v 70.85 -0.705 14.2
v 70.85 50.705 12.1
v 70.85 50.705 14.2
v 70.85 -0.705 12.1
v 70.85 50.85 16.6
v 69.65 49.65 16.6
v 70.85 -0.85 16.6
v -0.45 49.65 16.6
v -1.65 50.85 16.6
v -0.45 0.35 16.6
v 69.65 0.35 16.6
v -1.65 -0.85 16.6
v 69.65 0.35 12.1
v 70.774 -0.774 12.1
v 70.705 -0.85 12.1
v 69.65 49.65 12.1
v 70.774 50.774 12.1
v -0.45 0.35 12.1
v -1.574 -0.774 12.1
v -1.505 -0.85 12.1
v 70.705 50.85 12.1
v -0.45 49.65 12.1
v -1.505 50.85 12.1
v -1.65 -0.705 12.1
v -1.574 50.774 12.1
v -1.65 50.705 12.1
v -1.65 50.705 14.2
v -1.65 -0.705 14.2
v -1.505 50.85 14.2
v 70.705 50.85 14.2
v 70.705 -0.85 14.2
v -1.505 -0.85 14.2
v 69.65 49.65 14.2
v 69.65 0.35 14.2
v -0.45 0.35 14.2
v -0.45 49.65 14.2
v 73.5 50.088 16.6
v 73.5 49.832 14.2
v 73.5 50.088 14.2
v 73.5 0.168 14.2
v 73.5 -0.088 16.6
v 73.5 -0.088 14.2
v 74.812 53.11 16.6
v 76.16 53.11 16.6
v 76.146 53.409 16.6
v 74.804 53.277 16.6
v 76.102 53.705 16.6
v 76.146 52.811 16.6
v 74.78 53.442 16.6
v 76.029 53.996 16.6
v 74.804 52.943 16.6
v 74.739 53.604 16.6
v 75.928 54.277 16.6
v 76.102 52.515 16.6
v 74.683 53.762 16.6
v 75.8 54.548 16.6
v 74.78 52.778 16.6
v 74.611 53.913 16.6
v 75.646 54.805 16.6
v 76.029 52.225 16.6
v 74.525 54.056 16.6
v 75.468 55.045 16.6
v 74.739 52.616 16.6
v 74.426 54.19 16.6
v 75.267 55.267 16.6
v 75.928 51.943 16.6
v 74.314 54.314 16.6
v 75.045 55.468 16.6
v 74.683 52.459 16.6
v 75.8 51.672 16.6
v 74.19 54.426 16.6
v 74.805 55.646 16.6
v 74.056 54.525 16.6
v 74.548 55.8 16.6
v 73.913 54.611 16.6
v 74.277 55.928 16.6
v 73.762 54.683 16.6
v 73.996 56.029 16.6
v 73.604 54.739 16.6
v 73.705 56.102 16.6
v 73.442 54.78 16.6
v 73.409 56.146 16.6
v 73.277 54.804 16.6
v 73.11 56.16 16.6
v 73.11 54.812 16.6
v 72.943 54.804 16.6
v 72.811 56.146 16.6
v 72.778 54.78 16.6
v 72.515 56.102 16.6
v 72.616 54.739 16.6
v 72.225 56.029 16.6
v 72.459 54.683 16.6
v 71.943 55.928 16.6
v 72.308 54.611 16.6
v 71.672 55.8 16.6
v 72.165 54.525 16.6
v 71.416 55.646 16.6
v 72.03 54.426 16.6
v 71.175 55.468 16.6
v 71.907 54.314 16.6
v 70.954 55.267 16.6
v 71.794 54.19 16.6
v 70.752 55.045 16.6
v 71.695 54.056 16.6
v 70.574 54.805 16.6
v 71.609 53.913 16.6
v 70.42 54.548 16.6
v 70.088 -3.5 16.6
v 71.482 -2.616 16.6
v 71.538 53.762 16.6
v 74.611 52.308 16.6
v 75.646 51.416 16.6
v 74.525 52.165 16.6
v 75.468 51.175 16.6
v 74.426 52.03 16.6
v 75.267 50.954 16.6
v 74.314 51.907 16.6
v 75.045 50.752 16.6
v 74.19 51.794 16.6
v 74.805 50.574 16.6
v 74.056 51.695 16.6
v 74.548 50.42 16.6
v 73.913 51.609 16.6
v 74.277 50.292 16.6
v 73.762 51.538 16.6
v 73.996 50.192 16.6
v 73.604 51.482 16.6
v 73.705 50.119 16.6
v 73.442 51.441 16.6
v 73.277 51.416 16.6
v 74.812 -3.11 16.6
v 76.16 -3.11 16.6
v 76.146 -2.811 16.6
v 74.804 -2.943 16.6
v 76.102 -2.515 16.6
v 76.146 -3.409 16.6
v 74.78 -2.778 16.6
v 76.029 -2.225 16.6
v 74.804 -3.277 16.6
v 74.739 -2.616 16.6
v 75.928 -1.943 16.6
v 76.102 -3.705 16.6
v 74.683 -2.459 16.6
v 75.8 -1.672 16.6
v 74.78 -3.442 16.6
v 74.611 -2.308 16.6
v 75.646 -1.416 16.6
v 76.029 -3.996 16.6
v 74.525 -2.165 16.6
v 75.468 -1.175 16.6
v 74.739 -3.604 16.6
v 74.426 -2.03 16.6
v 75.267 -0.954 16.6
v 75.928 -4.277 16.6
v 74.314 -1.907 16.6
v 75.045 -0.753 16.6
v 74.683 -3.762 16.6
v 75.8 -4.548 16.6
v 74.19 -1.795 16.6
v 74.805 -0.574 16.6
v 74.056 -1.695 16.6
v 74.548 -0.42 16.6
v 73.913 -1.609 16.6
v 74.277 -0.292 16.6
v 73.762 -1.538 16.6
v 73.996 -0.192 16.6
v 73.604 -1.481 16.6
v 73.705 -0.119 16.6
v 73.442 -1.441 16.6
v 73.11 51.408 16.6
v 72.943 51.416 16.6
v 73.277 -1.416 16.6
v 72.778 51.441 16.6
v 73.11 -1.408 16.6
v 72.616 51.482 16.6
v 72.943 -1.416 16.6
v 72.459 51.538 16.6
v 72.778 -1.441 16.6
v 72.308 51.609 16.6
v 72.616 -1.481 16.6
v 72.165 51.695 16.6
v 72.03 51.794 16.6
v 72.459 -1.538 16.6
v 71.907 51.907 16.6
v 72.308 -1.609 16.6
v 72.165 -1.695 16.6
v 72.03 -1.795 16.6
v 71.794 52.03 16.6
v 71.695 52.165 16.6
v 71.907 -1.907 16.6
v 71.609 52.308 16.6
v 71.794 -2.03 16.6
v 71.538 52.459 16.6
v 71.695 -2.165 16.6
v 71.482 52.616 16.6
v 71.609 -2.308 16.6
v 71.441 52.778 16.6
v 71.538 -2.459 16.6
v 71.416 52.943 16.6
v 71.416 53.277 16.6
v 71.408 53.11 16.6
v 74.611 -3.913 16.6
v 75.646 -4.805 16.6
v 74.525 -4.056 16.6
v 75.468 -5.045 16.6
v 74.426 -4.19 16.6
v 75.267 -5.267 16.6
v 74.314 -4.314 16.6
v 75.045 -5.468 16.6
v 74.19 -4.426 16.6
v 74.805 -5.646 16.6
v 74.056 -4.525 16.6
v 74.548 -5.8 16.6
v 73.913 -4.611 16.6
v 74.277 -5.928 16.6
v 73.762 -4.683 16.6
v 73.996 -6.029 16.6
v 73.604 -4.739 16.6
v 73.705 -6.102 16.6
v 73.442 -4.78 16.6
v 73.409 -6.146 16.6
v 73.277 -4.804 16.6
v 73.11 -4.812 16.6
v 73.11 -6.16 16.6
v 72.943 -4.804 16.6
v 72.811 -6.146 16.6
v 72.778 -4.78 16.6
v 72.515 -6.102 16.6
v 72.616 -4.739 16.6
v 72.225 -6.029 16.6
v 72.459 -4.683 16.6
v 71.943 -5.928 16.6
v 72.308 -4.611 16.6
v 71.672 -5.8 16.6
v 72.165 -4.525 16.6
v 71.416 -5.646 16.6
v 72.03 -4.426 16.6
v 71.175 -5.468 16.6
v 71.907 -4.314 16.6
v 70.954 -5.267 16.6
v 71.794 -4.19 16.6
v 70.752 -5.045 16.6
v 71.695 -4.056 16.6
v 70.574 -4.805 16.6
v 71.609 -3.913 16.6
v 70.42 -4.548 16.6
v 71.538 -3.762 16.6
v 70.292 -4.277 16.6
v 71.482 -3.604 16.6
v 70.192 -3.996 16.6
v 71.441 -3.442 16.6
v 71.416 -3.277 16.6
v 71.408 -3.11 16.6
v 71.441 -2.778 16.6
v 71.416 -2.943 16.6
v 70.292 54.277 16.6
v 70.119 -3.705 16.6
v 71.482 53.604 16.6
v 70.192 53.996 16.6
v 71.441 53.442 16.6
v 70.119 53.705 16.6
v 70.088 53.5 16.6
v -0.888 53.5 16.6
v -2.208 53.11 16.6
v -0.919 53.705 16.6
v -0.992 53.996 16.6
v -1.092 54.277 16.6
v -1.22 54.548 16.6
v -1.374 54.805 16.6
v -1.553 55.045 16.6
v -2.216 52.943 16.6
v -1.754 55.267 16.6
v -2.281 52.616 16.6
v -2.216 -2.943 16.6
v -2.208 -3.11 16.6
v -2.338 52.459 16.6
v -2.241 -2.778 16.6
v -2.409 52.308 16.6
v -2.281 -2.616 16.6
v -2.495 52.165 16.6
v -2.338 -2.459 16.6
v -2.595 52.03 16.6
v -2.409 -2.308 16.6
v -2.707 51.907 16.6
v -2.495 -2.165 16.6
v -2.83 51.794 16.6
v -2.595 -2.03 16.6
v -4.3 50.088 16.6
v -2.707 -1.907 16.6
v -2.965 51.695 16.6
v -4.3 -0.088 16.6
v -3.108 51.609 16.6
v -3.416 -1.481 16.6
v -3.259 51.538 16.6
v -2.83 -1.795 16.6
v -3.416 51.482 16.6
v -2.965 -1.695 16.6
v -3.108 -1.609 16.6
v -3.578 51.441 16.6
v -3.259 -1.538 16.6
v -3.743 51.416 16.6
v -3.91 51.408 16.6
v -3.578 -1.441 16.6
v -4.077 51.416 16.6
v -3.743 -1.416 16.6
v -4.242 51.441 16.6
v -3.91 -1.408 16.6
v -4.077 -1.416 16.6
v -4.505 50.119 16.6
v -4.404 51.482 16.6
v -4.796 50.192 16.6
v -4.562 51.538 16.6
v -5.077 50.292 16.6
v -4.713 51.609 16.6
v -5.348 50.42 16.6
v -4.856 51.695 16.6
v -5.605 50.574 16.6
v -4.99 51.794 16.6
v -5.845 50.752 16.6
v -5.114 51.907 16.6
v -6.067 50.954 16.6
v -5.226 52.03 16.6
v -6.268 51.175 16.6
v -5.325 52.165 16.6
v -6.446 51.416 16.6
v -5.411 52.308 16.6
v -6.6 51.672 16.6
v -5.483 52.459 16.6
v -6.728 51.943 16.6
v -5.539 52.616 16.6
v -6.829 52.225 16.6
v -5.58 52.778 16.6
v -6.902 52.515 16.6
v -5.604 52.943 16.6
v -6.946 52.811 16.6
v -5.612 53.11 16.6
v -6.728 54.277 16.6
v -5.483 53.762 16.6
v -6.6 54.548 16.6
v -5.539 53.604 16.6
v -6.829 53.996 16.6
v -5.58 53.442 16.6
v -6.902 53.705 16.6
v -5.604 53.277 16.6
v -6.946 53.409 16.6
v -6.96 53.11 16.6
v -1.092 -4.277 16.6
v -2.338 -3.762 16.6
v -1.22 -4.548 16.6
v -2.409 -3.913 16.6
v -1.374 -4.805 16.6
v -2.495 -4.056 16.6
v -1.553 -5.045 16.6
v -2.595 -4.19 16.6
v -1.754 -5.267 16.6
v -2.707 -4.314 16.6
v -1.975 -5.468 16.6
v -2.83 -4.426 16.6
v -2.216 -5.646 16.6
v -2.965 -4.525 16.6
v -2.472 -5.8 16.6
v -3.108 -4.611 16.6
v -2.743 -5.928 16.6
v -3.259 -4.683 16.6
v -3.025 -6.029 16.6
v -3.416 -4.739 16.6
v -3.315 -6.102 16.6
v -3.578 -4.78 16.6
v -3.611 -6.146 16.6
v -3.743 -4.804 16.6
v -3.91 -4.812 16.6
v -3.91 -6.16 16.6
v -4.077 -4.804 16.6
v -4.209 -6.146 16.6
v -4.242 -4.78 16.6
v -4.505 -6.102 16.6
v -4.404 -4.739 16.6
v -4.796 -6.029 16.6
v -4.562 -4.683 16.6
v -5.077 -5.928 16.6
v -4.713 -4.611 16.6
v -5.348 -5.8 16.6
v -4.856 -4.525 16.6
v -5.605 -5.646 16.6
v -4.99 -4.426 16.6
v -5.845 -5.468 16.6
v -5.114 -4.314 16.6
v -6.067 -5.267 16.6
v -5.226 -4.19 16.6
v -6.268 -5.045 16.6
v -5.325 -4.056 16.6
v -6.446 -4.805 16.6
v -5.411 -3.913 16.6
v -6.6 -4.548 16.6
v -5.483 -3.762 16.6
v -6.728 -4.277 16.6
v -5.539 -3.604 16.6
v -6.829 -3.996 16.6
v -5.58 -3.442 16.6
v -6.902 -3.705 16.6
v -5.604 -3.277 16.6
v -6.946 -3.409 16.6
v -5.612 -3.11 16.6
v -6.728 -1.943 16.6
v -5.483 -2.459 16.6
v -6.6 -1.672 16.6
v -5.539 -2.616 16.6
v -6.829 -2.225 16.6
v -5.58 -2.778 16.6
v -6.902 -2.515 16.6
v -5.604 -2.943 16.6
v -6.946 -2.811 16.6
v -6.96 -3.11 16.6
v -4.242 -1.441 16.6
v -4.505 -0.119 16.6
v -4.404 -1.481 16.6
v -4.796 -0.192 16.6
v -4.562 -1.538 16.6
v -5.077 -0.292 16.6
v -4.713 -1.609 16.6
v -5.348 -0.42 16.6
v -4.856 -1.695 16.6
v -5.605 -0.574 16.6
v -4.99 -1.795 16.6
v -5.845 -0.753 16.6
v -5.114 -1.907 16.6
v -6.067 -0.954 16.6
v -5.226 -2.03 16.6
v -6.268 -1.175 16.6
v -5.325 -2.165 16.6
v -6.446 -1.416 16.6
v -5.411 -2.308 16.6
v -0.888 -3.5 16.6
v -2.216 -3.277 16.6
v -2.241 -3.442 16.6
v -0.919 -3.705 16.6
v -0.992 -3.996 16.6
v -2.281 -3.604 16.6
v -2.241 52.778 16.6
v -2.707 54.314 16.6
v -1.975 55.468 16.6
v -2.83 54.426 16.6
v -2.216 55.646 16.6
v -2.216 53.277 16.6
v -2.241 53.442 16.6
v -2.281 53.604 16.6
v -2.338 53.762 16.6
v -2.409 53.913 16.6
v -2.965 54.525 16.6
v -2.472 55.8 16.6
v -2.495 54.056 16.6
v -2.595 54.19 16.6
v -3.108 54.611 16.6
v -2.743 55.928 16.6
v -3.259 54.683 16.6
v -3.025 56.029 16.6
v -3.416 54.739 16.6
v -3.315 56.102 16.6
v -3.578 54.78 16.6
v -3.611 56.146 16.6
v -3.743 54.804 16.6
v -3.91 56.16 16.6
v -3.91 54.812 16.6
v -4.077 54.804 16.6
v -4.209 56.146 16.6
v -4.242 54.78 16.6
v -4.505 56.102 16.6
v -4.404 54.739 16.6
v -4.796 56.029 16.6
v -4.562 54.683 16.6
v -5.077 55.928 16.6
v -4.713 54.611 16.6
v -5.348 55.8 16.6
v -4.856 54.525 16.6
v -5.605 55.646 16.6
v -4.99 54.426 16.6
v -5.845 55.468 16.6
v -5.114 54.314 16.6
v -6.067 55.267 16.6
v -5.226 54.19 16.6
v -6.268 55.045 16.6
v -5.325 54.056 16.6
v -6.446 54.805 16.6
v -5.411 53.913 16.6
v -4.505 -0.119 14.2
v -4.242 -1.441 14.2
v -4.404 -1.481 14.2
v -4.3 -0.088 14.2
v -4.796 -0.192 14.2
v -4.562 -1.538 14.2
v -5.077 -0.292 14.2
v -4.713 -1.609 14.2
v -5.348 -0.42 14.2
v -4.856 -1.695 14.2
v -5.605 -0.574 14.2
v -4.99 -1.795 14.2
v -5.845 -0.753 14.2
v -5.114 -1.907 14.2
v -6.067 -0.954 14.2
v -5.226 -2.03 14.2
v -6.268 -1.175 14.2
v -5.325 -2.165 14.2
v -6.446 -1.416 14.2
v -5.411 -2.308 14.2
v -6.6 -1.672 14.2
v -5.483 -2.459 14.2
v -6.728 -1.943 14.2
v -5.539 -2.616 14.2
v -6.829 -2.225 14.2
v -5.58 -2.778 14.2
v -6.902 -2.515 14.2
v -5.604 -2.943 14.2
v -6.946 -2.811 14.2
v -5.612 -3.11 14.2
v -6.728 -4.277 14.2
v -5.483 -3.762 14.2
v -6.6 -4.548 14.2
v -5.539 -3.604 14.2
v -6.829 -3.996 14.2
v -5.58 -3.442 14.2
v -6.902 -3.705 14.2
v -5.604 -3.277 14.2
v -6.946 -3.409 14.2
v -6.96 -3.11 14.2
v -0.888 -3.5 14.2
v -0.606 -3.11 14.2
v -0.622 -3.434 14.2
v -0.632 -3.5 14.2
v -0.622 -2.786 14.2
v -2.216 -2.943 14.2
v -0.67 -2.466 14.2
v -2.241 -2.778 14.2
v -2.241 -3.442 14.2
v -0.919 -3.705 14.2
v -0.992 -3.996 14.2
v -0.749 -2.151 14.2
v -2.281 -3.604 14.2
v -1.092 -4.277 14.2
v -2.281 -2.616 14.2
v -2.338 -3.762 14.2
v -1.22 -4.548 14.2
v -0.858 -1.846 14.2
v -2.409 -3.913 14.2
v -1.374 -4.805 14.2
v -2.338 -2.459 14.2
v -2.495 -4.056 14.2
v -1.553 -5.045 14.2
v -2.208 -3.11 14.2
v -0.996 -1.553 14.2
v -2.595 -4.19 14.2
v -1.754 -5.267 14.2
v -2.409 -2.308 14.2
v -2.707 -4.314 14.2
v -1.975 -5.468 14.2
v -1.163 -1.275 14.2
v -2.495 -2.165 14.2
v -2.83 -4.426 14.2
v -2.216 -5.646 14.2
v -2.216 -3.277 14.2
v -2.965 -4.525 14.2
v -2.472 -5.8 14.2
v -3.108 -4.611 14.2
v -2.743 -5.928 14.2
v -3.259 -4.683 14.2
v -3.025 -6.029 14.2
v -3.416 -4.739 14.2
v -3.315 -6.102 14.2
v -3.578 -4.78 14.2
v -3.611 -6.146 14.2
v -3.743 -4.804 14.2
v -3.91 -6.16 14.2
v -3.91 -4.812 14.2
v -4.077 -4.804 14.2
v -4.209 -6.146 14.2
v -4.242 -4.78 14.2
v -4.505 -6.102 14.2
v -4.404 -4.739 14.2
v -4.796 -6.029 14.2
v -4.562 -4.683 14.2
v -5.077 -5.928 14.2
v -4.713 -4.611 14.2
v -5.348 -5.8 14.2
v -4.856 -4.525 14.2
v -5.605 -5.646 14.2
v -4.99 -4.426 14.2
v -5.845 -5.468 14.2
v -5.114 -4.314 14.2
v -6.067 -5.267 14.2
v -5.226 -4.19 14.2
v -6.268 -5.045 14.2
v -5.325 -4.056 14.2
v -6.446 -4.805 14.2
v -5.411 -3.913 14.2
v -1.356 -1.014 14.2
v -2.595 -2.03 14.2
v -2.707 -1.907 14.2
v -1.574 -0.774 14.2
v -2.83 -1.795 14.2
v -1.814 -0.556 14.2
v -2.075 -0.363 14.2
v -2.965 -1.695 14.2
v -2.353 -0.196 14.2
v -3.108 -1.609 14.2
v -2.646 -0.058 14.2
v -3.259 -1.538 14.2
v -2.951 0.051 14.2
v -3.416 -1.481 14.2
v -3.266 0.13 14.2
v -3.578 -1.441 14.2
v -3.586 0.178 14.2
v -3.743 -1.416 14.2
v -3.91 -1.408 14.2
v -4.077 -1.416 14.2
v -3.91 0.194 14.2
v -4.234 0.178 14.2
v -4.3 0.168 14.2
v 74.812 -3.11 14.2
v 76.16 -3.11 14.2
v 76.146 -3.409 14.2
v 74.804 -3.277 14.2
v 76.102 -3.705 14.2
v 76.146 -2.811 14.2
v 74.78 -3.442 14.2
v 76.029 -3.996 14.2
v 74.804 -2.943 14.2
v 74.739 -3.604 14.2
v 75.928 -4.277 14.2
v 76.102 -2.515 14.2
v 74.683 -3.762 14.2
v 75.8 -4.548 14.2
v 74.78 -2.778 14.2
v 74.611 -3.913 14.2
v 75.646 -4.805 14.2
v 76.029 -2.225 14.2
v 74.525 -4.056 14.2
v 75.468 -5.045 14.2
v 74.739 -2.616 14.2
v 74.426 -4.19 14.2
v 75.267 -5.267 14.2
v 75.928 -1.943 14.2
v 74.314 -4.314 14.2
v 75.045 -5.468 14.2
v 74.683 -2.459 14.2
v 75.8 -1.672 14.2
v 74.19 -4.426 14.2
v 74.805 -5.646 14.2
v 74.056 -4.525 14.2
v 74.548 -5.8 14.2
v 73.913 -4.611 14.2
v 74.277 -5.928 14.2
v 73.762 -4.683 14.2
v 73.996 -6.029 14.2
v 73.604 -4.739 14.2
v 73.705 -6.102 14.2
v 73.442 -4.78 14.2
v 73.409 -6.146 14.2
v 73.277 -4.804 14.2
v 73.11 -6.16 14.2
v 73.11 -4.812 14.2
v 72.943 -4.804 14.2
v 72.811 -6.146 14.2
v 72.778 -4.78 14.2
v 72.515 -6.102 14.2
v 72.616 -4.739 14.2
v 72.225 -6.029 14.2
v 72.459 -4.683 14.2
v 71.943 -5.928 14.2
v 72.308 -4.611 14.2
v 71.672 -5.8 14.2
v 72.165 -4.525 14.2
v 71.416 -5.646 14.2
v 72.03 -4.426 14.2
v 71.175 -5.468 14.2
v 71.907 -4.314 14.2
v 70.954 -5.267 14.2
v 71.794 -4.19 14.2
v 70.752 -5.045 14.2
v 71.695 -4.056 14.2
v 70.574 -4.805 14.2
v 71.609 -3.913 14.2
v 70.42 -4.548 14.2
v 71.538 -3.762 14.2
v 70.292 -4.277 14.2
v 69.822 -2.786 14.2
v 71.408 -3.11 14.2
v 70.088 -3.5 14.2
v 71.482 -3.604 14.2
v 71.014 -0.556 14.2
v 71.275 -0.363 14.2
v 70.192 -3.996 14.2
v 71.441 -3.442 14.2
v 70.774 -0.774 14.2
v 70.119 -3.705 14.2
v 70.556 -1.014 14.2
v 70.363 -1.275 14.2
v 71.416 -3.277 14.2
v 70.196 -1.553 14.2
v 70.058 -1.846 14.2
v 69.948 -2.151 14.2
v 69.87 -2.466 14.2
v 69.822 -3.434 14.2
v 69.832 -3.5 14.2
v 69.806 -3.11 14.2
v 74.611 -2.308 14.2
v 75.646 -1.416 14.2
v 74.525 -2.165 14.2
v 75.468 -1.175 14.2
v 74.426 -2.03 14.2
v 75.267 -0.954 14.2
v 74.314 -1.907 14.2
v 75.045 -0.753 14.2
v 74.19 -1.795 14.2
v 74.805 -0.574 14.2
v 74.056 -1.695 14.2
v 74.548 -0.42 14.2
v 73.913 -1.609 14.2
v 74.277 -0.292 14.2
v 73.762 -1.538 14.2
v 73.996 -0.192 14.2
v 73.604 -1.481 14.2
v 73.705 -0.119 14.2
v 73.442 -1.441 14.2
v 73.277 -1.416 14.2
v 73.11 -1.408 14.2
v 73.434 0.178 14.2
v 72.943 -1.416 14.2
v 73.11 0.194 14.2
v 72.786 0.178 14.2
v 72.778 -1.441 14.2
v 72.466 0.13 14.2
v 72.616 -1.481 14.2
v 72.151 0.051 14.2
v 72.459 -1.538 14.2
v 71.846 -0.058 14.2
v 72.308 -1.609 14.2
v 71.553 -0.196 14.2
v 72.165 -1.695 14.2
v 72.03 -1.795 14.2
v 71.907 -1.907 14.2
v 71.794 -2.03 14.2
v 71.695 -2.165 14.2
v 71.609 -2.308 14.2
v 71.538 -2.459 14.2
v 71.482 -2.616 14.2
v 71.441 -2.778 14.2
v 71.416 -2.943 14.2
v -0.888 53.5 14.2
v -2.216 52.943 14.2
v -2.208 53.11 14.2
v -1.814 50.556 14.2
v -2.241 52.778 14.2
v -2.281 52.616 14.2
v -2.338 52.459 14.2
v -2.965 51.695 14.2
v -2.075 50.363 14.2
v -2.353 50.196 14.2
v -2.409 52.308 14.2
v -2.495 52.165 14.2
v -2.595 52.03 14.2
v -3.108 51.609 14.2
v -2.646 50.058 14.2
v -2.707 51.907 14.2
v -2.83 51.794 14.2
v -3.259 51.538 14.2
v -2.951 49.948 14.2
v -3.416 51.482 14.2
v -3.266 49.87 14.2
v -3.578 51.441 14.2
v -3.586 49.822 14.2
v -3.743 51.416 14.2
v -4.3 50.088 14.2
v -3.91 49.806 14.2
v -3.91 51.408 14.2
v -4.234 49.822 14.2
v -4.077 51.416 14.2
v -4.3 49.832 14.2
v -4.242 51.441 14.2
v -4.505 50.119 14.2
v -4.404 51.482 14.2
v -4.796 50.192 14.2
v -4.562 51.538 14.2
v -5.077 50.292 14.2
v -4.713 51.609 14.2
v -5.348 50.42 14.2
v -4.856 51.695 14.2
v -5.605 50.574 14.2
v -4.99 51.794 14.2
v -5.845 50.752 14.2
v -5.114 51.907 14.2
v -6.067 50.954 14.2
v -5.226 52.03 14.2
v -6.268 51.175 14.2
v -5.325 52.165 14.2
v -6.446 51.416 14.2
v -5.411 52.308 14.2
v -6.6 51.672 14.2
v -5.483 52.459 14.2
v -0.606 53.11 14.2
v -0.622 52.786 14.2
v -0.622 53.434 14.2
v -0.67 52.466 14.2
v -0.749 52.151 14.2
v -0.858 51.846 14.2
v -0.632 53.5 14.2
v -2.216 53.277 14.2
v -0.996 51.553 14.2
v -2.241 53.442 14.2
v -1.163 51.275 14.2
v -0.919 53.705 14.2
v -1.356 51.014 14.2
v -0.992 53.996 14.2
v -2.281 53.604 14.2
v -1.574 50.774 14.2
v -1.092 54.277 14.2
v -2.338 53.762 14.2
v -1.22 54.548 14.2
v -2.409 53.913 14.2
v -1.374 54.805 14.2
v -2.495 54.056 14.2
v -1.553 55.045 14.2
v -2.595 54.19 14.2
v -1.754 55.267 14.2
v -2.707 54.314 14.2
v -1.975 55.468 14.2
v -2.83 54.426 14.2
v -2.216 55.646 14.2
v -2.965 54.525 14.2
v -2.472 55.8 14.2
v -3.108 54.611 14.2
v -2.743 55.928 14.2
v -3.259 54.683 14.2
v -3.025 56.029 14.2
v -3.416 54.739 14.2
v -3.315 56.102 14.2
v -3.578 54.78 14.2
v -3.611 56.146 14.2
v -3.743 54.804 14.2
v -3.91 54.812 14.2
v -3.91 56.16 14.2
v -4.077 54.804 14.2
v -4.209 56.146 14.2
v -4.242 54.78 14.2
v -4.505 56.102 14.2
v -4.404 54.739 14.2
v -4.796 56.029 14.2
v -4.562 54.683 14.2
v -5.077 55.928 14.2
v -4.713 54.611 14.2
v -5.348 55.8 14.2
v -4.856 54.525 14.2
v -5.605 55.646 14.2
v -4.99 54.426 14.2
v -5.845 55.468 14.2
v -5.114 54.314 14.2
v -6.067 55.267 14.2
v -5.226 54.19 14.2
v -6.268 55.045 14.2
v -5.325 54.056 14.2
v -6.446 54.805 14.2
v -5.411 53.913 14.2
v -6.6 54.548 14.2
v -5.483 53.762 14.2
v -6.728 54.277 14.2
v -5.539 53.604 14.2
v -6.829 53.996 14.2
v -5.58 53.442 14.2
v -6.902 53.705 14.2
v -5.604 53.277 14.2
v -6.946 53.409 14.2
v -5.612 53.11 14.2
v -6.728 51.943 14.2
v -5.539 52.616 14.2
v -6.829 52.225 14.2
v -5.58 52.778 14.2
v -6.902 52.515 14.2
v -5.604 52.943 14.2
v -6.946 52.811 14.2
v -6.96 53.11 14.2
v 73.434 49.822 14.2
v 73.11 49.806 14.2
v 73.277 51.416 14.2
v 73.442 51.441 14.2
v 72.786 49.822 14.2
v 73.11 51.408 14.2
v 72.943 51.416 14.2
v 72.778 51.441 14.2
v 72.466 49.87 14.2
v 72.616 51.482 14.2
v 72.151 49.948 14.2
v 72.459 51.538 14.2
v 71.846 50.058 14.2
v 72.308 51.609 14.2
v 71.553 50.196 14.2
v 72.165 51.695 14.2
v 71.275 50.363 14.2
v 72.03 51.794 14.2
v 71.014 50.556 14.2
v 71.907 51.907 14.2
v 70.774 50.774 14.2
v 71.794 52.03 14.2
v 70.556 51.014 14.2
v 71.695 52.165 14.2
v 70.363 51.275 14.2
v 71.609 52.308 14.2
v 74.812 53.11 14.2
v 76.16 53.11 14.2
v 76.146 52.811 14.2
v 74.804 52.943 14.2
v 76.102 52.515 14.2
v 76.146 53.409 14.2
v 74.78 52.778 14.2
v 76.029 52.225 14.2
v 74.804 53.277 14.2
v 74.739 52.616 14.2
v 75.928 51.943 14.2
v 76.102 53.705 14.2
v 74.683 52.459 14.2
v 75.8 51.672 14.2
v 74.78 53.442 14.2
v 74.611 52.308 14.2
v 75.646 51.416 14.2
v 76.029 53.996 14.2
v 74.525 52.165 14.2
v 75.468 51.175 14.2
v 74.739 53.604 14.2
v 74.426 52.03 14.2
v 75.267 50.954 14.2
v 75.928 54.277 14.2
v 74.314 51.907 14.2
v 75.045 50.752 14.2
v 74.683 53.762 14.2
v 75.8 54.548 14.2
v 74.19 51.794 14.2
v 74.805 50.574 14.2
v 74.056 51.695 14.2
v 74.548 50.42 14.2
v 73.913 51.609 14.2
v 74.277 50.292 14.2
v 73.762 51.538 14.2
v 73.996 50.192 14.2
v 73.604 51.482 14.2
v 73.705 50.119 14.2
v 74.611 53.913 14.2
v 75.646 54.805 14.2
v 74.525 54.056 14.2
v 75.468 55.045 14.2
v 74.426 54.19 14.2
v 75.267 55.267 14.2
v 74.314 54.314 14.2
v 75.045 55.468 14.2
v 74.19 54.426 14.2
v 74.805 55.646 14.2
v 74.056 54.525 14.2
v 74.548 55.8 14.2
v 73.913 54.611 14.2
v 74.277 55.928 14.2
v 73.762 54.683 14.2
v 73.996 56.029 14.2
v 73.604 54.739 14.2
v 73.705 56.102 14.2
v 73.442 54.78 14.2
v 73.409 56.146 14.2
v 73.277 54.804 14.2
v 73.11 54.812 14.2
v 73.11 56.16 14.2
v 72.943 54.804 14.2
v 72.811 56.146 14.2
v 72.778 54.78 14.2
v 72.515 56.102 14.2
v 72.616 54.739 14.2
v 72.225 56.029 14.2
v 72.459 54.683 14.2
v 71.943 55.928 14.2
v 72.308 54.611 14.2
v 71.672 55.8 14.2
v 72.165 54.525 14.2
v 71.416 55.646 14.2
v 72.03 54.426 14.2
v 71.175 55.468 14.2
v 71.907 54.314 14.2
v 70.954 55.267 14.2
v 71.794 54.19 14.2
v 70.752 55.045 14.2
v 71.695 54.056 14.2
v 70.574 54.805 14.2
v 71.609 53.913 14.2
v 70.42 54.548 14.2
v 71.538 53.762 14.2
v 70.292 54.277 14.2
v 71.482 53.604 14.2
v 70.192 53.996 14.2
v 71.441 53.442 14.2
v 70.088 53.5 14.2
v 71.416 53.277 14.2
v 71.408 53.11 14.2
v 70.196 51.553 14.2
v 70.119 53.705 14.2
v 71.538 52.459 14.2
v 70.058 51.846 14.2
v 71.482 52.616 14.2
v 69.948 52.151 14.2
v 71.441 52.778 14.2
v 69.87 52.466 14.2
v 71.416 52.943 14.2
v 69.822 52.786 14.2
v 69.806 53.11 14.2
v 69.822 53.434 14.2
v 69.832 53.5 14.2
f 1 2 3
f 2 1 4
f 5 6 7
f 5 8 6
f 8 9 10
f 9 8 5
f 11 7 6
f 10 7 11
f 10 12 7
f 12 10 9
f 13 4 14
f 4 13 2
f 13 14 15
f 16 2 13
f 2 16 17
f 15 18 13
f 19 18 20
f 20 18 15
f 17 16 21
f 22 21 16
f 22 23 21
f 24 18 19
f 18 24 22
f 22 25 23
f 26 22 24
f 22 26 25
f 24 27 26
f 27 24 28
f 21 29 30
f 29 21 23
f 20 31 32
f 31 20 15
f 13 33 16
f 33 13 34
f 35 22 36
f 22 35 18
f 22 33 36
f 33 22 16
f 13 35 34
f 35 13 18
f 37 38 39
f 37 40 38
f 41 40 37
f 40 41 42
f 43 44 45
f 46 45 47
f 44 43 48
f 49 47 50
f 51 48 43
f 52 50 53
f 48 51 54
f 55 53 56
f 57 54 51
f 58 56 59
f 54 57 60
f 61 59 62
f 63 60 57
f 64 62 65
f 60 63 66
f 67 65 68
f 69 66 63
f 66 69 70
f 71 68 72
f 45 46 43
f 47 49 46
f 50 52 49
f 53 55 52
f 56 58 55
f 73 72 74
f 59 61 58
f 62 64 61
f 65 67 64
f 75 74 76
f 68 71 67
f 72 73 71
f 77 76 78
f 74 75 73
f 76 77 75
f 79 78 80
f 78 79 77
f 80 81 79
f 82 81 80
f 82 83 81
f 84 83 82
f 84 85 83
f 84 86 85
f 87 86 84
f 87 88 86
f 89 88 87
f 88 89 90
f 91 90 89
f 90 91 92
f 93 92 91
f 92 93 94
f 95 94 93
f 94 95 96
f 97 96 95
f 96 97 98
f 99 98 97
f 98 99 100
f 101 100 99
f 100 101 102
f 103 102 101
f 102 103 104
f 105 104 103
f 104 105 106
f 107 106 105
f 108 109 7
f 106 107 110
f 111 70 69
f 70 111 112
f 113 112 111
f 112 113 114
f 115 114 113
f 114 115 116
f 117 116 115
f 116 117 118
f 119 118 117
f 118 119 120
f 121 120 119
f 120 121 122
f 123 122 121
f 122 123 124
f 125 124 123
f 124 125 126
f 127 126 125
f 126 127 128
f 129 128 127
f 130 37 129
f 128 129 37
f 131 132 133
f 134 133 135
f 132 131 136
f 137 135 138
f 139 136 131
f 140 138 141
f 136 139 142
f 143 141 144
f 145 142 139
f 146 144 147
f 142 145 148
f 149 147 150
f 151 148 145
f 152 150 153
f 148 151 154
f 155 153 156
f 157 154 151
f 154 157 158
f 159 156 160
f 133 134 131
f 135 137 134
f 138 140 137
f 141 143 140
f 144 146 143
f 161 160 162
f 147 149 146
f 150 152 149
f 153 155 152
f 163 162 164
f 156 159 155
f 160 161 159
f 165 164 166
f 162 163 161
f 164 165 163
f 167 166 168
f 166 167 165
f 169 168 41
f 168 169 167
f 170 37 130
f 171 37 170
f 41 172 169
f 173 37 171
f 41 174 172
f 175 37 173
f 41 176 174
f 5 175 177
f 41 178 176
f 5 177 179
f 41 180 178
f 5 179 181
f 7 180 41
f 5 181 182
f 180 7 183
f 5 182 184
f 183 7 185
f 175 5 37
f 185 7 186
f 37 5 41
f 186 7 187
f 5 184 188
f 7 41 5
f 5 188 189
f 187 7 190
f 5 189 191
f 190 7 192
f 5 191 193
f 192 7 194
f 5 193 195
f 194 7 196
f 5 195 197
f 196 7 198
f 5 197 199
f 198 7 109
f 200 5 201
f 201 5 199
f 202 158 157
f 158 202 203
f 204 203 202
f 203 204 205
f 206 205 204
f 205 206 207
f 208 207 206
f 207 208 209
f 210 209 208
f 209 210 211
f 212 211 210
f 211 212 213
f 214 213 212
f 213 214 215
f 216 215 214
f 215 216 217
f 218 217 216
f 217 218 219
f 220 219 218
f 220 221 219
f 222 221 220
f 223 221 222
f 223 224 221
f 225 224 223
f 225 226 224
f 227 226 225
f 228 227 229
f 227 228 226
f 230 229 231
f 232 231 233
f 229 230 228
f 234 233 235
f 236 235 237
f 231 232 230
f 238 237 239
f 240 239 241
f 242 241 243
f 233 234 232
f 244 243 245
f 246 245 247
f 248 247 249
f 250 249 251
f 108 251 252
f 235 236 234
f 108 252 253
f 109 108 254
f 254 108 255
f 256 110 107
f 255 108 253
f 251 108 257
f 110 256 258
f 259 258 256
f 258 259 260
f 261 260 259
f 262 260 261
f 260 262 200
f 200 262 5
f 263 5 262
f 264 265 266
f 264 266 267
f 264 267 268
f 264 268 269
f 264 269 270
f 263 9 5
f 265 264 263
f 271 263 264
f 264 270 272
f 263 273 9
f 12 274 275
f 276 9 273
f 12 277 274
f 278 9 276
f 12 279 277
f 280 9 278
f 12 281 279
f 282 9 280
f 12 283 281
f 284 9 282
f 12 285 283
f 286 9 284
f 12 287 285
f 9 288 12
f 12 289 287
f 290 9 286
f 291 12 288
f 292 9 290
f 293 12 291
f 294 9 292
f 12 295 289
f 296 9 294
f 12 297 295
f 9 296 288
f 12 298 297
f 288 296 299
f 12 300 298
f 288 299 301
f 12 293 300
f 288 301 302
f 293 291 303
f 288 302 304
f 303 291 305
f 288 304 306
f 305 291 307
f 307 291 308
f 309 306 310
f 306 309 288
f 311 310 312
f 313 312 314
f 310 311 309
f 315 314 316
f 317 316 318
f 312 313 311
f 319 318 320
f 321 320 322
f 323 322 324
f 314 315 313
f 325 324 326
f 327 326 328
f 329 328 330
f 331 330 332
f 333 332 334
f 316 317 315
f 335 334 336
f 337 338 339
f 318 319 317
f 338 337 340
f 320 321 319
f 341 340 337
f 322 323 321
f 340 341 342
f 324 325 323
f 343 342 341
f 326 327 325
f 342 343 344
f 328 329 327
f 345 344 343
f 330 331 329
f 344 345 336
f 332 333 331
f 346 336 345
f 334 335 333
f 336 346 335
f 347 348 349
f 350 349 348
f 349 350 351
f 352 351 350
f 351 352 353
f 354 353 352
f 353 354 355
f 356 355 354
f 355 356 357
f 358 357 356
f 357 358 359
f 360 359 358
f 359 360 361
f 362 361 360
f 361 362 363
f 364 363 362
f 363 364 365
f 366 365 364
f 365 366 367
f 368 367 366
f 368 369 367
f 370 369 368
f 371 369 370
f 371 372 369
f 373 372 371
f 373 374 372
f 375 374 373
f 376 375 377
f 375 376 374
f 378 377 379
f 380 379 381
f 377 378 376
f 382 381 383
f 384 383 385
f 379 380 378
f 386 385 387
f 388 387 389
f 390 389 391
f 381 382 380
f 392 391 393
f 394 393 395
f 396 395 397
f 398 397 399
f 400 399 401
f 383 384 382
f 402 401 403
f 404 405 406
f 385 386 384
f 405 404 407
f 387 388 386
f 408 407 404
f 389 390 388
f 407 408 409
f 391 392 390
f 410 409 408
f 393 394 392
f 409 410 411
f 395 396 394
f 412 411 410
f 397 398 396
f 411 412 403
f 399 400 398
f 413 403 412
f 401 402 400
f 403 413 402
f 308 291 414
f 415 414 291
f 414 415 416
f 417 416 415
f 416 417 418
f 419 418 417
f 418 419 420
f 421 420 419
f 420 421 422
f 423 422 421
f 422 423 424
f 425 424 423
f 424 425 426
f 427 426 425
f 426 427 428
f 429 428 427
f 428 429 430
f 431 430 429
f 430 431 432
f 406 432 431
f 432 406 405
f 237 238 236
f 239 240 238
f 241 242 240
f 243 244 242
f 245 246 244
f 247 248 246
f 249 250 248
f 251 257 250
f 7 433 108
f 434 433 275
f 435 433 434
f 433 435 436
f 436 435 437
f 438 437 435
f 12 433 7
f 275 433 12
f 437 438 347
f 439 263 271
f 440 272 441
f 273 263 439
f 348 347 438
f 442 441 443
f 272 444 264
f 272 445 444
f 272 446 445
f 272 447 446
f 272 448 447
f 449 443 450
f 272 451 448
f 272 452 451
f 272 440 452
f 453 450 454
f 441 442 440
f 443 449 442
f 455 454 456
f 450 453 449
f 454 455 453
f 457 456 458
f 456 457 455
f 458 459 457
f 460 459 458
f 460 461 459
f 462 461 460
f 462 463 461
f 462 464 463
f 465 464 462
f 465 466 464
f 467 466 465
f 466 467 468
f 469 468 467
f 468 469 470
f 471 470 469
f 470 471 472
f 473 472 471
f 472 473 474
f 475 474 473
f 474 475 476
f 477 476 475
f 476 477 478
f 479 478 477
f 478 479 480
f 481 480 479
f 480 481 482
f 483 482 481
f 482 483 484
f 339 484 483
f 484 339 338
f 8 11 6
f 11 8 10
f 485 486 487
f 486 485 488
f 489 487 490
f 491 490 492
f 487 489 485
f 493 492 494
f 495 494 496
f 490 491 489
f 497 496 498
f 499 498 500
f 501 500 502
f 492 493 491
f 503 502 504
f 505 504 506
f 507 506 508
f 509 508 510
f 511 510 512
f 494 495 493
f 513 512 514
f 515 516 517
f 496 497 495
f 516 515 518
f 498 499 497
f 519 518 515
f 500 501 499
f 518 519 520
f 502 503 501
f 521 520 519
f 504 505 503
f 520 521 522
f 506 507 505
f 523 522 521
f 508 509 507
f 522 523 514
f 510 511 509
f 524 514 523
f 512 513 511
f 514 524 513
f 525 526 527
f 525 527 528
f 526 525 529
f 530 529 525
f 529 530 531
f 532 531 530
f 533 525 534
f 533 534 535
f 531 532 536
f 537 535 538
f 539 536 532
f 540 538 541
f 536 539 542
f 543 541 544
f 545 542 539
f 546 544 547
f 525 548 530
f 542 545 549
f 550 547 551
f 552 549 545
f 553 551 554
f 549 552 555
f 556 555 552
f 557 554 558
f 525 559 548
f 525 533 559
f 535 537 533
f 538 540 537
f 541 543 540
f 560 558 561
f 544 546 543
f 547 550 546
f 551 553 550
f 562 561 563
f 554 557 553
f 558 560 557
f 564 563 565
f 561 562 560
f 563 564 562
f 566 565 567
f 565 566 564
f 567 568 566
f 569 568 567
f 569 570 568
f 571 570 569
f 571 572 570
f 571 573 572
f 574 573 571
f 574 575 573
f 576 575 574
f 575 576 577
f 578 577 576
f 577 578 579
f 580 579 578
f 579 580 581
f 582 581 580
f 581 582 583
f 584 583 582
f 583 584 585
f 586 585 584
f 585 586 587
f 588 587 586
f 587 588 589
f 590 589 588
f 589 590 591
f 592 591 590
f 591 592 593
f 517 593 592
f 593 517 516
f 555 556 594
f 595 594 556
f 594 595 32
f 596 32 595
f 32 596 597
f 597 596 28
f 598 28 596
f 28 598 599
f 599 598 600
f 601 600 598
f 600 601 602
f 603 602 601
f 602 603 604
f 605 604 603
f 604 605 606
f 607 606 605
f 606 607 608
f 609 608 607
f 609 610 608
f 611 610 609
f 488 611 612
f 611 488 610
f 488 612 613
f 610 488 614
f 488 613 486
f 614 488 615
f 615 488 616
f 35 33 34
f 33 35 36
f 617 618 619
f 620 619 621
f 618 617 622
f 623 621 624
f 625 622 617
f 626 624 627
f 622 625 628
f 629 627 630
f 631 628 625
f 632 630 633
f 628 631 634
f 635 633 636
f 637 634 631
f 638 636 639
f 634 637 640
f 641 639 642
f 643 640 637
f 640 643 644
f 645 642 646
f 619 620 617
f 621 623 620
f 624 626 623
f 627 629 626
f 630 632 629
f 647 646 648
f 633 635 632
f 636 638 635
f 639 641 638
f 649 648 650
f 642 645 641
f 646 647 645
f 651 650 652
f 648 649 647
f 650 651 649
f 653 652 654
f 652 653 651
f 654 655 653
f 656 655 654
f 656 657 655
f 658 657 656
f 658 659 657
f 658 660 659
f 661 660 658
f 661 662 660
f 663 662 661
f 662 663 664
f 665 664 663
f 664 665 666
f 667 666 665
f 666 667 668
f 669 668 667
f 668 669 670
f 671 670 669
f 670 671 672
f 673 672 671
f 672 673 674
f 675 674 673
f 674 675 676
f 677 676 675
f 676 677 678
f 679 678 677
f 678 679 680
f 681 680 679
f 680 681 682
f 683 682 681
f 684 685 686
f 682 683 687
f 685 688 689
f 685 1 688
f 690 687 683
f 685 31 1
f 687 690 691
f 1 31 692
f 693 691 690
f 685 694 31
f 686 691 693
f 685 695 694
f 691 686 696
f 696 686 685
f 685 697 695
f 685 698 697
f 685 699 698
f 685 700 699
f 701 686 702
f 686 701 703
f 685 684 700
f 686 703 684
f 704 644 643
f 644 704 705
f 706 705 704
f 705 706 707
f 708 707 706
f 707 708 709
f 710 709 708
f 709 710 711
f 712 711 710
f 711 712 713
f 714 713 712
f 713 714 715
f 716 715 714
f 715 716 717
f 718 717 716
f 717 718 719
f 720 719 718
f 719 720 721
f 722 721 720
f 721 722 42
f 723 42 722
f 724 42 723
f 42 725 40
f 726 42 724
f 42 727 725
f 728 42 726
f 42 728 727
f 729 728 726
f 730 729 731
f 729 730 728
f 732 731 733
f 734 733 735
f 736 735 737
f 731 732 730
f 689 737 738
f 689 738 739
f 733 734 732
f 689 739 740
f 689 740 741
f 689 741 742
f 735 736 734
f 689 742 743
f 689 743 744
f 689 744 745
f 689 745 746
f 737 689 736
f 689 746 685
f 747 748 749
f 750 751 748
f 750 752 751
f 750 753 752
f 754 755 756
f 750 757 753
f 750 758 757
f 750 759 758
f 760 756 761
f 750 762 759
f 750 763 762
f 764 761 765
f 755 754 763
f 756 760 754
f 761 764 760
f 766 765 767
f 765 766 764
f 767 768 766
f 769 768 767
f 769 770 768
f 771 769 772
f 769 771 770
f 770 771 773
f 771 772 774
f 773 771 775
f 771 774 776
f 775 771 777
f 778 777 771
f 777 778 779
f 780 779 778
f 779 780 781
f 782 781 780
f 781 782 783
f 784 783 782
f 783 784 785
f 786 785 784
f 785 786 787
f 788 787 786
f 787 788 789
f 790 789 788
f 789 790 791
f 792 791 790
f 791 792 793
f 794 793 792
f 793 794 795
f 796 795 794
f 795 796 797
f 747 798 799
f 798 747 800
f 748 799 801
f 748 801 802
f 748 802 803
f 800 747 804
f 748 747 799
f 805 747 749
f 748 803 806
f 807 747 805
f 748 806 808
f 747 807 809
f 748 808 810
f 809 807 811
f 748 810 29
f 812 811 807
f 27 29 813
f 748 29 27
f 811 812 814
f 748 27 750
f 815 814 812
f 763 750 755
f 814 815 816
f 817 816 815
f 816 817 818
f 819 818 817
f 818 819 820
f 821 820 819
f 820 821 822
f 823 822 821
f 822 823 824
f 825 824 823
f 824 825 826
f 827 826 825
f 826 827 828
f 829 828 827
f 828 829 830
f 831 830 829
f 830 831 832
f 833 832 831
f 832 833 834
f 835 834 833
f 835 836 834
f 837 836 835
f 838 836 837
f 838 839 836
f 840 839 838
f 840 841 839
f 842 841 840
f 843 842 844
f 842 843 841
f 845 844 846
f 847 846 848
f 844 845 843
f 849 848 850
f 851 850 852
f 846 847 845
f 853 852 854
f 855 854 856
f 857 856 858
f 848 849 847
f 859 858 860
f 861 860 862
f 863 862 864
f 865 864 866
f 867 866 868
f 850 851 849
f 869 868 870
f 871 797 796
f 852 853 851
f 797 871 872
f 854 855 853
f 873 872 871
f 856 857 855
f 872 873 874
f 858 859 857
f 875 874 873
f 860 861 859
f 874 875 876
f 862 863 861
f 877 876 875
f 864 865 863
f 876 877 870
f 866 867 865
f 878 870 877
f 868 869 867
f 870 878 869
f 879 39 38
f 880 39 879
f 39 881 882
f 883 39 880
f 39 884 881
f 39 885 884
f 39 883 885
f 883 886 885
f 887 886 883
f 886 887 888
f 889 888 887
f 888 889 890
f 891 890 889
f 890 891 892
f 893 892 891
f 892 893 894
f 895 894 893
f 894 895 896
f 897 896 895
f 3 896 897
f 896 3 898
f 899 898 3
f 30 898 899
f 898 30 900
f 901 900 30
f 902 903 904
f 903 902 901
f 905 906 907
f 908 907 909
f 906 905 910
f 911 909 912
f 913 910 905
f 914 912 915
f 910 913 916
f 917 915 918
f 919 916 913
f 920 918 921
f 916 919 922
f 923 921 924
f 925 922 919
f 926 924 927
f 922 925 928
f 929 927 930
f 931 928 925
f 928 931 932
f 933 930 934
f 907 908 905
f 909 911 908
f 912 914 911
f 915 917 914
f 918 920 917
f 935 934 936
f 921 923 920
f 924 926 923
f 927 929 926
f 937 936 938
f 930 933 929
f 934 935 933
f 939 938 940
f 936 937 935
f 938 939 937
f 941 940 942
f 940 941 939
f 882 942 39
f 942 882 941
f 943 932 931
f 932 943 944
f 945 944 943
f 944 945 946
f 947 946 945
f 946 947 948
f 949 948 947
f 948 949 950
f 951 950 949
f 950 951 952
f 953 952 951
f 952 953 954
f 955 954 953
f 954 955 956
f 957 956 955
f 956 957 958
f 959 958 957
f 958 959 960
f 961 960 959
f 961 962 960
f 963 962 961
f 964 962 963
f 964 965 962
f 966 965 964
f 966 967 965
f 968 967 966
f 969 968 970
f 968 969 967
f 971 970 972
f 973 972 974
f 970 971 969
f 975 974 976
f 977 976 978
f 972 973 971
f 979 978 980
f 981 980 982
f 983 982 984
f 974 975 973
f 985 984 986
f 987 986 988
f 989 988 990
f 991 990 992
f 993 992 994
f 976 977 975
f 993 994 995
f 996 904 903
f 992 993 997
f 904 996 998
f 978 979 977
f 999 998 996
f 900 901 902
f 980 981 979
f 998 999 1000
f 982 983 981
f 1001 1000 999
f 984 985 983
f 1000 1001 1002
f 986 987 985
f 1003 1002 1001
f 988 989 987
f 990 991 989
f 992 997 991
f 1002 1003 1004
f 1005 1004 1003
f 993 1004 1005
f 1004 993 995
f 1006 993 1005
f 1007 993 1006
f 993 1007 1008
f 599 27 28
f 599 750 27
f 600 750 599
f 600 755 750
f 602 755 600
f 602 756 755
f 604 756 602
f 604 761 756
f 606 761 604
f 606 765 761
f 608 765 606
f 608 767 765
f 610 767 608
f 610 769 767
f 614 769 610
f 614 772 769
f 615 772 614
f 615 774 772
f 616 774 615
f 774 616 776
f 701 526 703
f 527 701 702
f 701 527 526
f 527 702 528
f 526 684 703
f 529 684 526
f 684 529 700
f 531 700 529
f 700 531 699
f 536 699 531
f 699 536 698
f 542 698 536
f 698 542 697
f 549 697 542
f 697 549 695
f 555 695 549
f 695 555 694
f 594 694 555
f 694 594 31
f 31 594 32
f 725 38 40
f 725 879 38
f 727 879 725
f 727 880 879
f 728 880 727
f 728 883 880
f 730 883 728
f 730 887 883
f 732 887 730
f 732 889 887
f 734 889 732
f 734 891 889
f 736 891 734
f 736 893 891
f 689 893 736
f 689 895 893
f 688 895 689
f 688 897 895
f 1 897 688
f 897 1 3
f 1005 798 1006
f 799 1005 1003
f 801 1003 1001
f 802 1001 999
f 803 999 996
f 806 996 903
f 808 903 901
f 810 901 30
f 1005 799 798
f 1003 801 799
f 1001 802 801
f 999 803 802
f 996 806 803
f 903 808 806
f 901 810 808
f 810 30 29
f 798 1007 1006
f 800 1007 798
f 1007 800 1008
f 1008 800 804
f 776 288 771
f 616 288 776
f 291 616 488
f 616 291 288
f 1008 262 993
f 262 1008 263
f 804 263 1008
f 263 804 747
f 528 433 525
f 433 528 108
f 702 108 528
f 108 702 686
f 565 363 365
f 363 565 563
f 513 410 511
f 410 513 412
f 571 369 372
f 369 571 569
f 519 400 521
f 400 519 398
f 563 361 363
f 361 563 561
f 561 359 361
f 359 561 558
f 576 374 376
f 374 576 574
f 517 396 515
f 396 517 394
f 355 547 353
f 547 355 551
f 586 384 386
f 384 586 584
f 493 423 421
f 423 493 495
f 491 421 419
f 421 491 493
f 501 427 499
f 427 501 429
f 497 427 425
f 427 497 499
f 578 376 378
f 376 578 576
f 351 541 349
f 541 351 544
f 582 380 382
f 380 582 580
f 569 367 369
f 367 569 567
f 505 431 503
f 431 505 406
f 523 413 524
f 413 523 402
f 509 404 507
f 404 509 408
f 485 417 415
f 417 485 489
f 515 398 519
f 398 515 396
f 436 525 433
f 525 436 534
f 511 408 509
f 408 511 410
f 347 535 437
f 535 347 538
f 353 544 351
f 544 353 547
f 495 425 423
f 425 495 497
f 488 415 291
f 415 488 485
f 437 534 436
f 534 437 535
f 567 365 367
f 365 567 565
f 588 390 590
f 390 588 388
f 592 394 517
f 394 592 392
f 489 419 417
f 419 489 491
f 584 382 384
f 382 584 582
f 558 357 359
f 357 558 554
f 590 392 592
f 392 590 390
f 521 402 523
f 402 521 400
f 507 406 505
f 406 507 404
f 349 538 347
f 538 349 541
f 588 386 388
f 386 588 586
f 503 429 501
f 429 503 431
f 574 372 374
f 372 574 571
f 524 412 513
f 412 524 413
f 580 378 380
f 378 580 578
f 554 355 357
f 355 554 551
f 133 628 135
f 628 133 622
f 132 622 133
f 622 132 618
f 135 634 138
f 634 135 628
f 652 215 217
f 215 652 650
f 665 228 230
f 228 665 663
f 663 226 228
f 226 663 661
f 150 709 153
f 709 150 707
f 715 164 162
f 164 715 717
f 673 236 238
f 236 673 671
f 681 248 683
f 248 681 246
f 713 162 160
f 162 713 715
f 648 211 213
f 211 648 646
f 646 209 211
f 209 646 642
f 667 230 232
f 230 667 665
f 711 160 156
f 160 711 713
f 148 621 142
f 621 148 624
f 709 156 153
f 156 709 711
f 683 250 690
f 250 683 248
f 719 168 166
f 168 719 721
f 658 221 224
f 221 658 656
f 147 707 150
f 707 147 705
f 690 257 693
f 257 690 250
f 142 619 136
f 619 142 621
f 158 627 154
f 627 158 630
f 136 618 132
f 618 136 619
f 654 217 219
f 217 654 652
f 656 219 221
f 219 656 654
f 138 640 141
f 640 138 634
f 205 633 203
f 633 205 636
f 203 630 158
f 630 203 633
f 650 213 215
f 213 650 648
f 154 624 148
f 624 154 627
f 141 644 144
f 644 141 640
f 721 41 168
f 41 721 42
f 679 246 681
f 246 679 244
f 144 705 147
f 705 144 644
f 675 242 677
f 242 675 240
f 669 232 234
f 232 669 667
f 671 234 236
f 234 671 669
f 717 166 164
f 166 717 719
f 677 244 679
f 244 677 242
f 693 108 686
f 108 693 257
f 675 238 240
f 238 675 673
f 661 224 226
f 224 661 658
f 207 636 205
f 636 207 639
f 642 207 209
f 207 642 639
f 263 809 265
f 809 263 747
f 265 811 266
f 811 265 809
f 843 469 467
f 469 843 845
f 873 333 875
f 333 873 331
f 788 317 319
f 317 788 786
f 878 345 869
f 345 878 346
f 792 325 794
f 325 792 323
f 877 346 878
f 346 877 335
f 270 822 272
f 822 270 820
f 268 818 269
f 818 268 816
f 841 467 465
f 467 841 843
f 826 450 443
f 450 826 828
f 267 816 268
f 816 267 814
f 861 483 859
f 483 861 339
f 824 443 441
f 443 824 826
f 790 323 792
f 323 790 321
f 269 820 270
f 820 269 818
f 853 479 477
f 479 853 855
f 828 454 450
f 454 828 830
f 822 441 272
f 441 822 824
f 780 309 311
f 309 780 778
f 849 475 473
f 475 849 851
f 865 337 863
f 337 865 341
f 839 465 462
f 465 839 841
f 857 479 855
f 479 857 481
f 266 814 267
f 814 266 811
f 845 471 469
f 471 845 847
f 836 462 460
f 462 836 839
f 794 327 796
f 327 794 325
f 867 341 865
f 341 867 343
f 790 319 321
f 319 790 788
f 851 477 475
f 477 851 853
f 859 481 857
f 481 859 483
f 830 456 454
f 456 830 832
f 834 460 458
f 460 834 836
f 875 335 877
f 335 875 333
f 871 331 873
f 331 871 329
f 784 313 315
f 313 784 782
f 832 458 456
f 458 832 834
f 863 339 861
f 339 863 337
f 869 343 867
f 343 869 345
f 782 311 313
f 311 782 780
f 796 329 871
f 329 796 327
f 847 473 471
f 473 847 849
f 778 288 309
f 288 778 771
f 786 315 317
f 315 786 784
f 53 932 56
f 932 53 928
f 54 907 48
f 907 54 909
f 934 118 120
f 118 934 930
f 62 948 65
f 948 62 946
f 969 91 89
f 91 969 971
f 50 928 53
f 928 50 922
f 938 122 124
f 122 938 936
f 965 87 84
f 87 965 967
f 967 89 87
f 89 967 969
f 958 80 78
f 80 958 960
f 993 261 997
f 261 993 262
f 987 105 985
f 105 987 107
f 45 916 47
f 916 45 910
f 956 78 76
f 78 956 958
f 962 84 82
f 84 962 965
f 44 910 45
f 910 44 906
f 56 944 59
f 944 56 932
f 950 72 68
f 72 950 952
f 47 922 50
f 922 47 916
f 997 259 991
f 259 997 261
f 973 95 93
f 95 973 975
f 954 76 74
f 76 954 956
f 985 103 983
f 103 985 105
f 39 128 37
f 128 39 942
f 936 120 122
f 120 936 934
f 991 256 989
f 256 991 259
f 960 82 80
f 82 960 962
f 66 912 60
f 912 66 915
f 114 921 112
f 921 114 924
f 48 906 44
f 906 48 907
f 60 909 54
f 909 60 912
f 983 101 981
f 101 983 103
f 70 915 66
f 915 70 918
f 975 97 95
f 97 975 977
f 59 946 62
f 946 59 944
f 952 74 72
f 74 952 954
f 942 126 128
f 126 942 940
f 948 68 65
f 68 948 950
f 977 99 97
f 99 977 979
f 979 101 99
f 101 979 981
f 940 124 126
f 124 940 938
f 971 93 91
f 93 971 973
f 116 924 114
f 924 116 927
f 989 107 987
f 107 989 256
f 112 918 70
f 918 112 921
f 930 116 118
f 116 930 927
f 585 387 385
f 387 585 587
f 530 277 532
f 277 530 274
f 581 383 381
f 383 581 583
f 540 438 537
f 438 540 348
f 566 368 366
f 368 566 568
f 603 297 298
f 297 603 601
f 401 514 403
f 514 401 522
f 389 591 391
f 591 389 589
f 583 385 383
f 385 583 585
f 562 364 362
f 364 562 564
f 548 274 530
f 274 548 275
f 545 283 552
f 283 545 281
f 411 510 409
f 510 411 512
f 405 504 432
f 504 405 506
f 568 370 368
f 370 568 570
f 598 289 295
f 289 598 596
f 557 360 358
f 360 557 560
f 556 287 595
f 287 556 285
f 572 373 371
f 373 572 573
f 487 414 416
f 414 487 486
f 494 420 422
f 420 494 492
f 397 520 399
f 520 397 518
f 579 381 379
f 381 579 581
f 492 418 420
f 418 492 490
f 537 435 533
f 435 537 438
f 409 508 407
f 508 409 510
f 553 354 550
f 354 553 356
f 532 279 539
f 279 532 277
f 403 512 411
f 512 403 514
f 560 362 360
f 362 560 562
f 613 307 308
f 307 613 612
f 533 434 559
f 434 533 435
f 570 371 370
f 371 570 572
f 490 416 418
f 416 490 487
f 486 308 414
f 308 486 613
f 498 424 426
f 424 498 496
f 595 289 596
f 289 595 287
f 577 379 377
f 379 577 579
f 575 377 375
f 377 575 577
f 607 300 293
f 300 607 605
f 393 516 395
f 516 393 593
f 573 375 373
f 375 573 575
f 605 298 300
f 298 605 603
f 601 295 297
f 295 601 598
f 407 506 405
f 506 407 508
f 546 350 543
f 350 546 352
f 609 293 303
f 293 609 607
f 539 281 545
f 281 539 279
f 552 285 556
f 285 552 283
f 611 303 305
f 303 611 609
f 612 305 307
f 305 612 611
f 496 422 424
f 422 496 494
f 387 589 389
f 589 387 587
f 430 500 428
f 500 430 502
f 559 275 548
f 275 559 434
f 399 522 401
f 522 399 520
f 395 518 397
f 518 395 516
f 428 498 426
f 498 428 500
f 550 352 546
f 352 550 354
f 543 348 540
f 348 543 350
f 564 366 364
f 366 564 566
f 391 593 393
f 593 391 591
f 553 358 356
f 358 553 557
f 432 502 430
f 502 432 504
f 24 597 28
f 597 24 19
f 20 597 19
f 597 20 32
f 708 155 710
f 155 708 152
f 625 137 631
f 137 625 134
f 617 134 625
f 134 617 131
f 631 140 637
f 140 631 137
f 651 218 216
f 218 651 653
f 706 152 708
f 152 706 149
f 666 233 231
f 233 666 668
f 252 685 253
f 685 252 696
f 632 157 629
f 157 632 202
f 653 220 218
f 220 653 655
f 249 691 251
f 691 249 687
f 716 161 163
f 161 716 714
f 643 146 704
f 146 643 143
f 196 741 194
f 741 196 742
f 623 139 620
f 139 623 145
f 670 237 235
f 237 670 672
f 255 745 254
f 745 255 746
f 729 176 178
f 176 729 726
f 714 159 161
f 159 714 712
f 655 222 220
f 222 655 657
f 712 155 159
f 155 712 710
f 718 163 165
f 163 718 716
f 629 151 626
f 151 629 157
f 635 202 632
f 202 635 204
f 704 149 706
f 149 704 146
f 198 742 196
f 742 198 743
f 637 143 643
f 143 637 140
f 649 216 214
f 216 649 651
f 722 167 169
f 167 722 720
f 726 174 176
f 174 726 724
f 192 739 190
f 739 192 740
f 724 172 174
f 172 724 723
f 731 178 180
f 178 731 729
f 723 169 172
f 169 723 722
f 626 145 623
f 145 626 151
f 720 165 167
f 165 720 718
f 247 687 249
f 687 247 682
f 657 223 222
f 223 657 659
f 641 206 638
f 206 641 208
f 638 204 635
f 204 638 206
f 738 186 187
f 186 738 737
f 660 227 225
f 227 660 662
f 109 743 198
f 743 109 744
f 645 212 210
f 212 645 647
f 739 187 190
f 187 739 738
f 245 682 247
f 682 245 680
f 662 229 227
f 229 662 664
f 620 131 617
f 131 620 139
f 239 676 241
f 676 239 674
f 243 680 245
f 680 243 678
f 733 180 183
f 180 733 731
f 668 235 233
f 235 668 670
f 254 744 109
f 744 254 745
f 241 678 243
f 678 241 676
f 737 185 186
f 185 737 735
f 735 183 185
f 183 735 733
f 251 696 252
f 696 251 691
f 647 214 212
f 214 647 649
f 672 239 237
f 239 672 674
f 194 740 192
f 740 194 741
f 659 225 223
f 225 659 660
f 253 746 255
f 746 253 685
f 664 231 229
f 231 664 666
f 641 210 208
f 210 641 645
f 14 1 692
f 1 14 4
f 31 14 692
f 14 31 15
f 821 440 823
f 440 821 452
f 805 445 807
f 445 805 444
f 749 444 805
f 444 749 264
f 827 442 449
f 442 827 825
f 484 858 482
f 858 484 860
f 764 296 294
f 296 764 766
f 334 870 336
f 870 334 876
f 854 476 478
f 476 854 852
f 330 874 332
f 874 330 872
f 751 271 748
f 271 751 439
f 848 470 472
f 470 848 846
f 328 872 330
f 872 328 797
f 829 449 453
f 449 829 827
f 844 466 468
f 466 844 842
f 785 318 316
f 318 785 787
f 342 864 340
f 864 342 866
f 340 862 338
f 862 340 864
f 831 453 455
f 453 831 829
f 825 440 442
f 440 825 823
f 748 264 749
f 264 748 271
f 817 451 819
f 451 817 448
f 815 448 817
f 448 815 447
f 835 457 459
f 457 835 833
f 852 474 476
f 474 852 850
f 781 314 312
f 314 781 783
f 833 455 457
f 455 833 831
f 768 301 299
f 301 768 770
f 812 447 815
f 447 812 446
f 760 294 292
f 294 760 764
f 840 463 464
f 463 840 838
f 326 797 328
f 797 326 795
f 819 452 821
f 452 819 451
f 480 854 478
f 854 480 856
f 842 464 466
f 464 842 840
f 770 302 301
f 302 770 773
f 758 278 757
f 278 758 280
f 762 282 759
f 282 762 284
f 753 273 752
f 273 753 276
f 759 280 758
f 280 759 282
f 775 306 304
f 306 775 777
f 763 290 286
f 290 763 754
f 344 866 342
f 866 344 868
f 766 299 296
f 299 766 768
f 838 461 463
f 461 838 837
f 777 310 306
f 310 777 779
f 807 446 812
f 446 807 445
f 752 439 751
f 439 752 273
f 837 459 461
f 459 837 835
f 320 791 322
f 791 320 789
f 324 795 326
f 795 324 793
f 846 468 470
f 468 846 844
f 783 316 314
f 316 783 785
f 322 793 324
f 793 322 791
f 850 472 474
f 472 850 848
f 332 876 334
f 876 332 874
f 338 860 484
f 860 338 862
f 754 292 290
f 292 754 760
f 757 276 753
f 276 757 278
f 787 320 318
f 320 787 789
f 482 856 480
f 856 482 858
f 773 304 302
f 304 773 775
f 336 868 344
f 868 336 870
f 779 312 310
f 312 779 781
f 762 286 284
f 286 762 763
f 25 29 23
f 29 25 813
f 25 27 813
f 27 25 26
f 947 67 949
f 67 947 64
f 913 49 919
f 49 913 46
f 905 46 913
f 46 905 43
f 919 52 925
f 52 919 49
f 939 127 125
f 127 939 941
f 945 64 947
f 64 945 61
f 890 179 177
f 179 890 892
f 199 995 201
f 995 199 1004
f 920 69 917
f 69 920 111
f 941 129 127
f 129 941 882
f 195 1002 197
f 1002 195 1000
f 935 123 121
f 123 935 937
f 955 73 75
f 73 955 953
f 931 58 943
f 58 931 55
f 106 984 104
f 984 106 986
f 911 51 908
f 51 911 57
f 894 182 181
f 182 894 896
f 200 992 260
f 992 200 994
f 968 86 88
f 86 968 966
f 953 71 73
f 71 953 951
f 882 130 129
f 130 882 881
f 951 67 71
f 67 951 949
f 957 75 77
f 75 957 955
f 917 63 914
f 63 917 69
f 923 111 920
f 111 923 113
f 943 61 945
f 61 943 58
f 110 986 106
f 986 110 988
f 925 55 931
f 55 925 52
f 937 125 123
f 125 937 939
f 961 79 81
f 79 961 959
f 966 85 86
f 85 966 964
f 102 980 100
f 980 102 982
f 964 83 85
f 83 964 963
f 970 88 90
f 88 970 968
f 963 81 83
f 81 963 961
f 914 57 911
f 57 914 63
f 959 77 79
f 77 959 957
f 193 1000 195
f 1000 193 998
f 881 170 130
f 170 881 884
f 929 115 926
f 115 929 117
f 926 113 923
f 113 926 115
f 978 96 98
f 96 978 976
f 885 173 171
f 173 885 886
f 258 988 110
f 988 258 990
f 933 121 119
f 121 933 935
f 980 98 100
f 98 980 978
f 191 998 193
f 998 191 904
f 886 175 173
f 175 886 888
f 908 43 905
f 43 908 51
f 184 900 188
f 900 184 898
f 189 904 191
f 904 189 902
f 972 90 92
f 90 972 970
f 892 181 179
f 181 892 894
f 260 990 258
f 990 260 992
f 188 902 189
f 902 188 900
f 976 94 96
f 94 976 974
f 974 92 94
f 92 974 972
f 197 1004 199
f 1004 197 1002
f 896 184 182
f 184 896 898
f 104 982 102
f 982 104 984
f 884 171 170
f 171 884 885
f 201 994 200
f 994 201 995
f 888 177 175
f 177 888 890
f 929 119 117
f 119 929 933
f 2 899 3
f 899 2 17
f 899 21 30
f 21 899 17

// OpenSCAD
// body lid
difference() {
  union() {
    // body lid (lid_plate)
    multmatrix([[1, 0, 0, 34.6], [0, 1, 0, 25], [0, 0, 1, 14.2], [0, 0, 0, 1]]) translate([-38.9, -28.5, 0]) cube([77.8, 57, 2.4]);
    // add lid_lip (lip)
    multmatrix([[1, 0, 0, 34.6], [0, 1, 0, 25], [0, 0, 1, 12.1], [0, 0, 0, 1]]) difference() { translate([-36.25, -25.85, 0]) cube([72.5, 51.7, 4.5]); translate([0, 0, -1]) translate([-35.05, -24.65, 0]) cube([70.1, 49.3, 6.5]); }
    // add boss_1_pad (pad)
    multmatrix([[1, 0, 0, -3.910229], [0, 1, 0, -3.110229], [0, 0, 1, 14.2], [0, 0, 0, 1]]) cylinder(h=2.4, d=6.1, $fn=64);
    // add boss_2_pad (pad)
    multmatrix([[1, 0, 0, 73.110229], [0, 1, 0, -3.110229], [0, 0, 1, 14.2], [0, 0, 0, 1]]) cylinder(h=2.4, d=6.1, $fn=64);
    // add boss_3_pad (pad)
    multmatrix([[1, 0, 0, -3.910229], [0, 1, 0, 53.110229], [0, 0, 1, 14.2], [0, 0, 0, 1]]) cylinder(h=2.4, d=6.1, $fn=64);
    // add boss_4_pad (pad)
    multmatrix([[1, 0, 0, 73.110229], [0, 1, 0, 53.110229], [0, 0, 1, 14.2], [0, 0, 0, 1]]) cylinder(h=2.4, d=6.1, $fn=64);
  }
  // cut boss_1_lid_hole (screw_hole)
  multmatrix([[1, 0, 0, -3.910229], [0, 1, 0, -3.110229], [0, 0, 1, 13.2], [0, 0, 0, 1]]) cylinder(h=4.4, d=3.4041, $fn=64);
  // cut boss_1_lip_notch (lip_notch)
  multmatrix([[1, 0, 0, -3.910229], [0, 1, 0, -3.110229], [0, 0, 1, 11.1], [0, 0, 0, 1]]) cylinder(h=3.1, d=6.60796, $fn=64);
  // cut boss_2_lid_hole (screw_hole)
  multmatrix([[1, 0, 0, 73.110229], [0, 1, 0, -3.110229], [0, 0, 1, 13.2], [0, 0, 0, 1]]) cylinder(h=4.4, d=3.4041, $fn=64);
  // cut boss_2_lip_notch (lip_notch)
  multmatrix([[1, 0, 0, 73.110229], [0, 1, 0, -3.110229], [0, 0, 1, 11.1], [0, 0, 0, 1]]) cylinder(h=3.1, d=6.60796, $fn=64);
  // cut boss_3_lid_hole (screw_hole)
  multmatrix([[1, 0, 0, -3.910229], [0, 1, 0, 53.110229], [0, 0, 1, 13.2], [0, 0, 0, 1]]) cylinder(h=4.4, d=3.4041, $fn=64);
  // cut boss_3_lip_notch (lip_notch)
  multmatrix([[1, 0, 0, -3.910229], [0, 1, 0, 53.110229], [0, 0, 1, 11.1], [0, 0, 0, 1]]) cylinder(h=3.1, d=6.60796, $fn=64);
  // cut boss_4_lid_hole (screw_hole)
  multmatrix([[1, 0, 0, 73.110229], [0, 1, 0, 53.110229], [0, 0, 1, 13.2], [0, 0, 0, 1]]) cylinder(h=4.4, d=3.4041, $fn=64);
  // cut boss_4_lip_notch (lip_notch)
  multmatrix([[1, 0, 0, 73.110229], [0, 1, 0, 53.110229], [0, 0, 1, 11.1], [0, 0, 0, 1]]) cylinder(h=3.1, d=6.60796, $fn=64);
}
